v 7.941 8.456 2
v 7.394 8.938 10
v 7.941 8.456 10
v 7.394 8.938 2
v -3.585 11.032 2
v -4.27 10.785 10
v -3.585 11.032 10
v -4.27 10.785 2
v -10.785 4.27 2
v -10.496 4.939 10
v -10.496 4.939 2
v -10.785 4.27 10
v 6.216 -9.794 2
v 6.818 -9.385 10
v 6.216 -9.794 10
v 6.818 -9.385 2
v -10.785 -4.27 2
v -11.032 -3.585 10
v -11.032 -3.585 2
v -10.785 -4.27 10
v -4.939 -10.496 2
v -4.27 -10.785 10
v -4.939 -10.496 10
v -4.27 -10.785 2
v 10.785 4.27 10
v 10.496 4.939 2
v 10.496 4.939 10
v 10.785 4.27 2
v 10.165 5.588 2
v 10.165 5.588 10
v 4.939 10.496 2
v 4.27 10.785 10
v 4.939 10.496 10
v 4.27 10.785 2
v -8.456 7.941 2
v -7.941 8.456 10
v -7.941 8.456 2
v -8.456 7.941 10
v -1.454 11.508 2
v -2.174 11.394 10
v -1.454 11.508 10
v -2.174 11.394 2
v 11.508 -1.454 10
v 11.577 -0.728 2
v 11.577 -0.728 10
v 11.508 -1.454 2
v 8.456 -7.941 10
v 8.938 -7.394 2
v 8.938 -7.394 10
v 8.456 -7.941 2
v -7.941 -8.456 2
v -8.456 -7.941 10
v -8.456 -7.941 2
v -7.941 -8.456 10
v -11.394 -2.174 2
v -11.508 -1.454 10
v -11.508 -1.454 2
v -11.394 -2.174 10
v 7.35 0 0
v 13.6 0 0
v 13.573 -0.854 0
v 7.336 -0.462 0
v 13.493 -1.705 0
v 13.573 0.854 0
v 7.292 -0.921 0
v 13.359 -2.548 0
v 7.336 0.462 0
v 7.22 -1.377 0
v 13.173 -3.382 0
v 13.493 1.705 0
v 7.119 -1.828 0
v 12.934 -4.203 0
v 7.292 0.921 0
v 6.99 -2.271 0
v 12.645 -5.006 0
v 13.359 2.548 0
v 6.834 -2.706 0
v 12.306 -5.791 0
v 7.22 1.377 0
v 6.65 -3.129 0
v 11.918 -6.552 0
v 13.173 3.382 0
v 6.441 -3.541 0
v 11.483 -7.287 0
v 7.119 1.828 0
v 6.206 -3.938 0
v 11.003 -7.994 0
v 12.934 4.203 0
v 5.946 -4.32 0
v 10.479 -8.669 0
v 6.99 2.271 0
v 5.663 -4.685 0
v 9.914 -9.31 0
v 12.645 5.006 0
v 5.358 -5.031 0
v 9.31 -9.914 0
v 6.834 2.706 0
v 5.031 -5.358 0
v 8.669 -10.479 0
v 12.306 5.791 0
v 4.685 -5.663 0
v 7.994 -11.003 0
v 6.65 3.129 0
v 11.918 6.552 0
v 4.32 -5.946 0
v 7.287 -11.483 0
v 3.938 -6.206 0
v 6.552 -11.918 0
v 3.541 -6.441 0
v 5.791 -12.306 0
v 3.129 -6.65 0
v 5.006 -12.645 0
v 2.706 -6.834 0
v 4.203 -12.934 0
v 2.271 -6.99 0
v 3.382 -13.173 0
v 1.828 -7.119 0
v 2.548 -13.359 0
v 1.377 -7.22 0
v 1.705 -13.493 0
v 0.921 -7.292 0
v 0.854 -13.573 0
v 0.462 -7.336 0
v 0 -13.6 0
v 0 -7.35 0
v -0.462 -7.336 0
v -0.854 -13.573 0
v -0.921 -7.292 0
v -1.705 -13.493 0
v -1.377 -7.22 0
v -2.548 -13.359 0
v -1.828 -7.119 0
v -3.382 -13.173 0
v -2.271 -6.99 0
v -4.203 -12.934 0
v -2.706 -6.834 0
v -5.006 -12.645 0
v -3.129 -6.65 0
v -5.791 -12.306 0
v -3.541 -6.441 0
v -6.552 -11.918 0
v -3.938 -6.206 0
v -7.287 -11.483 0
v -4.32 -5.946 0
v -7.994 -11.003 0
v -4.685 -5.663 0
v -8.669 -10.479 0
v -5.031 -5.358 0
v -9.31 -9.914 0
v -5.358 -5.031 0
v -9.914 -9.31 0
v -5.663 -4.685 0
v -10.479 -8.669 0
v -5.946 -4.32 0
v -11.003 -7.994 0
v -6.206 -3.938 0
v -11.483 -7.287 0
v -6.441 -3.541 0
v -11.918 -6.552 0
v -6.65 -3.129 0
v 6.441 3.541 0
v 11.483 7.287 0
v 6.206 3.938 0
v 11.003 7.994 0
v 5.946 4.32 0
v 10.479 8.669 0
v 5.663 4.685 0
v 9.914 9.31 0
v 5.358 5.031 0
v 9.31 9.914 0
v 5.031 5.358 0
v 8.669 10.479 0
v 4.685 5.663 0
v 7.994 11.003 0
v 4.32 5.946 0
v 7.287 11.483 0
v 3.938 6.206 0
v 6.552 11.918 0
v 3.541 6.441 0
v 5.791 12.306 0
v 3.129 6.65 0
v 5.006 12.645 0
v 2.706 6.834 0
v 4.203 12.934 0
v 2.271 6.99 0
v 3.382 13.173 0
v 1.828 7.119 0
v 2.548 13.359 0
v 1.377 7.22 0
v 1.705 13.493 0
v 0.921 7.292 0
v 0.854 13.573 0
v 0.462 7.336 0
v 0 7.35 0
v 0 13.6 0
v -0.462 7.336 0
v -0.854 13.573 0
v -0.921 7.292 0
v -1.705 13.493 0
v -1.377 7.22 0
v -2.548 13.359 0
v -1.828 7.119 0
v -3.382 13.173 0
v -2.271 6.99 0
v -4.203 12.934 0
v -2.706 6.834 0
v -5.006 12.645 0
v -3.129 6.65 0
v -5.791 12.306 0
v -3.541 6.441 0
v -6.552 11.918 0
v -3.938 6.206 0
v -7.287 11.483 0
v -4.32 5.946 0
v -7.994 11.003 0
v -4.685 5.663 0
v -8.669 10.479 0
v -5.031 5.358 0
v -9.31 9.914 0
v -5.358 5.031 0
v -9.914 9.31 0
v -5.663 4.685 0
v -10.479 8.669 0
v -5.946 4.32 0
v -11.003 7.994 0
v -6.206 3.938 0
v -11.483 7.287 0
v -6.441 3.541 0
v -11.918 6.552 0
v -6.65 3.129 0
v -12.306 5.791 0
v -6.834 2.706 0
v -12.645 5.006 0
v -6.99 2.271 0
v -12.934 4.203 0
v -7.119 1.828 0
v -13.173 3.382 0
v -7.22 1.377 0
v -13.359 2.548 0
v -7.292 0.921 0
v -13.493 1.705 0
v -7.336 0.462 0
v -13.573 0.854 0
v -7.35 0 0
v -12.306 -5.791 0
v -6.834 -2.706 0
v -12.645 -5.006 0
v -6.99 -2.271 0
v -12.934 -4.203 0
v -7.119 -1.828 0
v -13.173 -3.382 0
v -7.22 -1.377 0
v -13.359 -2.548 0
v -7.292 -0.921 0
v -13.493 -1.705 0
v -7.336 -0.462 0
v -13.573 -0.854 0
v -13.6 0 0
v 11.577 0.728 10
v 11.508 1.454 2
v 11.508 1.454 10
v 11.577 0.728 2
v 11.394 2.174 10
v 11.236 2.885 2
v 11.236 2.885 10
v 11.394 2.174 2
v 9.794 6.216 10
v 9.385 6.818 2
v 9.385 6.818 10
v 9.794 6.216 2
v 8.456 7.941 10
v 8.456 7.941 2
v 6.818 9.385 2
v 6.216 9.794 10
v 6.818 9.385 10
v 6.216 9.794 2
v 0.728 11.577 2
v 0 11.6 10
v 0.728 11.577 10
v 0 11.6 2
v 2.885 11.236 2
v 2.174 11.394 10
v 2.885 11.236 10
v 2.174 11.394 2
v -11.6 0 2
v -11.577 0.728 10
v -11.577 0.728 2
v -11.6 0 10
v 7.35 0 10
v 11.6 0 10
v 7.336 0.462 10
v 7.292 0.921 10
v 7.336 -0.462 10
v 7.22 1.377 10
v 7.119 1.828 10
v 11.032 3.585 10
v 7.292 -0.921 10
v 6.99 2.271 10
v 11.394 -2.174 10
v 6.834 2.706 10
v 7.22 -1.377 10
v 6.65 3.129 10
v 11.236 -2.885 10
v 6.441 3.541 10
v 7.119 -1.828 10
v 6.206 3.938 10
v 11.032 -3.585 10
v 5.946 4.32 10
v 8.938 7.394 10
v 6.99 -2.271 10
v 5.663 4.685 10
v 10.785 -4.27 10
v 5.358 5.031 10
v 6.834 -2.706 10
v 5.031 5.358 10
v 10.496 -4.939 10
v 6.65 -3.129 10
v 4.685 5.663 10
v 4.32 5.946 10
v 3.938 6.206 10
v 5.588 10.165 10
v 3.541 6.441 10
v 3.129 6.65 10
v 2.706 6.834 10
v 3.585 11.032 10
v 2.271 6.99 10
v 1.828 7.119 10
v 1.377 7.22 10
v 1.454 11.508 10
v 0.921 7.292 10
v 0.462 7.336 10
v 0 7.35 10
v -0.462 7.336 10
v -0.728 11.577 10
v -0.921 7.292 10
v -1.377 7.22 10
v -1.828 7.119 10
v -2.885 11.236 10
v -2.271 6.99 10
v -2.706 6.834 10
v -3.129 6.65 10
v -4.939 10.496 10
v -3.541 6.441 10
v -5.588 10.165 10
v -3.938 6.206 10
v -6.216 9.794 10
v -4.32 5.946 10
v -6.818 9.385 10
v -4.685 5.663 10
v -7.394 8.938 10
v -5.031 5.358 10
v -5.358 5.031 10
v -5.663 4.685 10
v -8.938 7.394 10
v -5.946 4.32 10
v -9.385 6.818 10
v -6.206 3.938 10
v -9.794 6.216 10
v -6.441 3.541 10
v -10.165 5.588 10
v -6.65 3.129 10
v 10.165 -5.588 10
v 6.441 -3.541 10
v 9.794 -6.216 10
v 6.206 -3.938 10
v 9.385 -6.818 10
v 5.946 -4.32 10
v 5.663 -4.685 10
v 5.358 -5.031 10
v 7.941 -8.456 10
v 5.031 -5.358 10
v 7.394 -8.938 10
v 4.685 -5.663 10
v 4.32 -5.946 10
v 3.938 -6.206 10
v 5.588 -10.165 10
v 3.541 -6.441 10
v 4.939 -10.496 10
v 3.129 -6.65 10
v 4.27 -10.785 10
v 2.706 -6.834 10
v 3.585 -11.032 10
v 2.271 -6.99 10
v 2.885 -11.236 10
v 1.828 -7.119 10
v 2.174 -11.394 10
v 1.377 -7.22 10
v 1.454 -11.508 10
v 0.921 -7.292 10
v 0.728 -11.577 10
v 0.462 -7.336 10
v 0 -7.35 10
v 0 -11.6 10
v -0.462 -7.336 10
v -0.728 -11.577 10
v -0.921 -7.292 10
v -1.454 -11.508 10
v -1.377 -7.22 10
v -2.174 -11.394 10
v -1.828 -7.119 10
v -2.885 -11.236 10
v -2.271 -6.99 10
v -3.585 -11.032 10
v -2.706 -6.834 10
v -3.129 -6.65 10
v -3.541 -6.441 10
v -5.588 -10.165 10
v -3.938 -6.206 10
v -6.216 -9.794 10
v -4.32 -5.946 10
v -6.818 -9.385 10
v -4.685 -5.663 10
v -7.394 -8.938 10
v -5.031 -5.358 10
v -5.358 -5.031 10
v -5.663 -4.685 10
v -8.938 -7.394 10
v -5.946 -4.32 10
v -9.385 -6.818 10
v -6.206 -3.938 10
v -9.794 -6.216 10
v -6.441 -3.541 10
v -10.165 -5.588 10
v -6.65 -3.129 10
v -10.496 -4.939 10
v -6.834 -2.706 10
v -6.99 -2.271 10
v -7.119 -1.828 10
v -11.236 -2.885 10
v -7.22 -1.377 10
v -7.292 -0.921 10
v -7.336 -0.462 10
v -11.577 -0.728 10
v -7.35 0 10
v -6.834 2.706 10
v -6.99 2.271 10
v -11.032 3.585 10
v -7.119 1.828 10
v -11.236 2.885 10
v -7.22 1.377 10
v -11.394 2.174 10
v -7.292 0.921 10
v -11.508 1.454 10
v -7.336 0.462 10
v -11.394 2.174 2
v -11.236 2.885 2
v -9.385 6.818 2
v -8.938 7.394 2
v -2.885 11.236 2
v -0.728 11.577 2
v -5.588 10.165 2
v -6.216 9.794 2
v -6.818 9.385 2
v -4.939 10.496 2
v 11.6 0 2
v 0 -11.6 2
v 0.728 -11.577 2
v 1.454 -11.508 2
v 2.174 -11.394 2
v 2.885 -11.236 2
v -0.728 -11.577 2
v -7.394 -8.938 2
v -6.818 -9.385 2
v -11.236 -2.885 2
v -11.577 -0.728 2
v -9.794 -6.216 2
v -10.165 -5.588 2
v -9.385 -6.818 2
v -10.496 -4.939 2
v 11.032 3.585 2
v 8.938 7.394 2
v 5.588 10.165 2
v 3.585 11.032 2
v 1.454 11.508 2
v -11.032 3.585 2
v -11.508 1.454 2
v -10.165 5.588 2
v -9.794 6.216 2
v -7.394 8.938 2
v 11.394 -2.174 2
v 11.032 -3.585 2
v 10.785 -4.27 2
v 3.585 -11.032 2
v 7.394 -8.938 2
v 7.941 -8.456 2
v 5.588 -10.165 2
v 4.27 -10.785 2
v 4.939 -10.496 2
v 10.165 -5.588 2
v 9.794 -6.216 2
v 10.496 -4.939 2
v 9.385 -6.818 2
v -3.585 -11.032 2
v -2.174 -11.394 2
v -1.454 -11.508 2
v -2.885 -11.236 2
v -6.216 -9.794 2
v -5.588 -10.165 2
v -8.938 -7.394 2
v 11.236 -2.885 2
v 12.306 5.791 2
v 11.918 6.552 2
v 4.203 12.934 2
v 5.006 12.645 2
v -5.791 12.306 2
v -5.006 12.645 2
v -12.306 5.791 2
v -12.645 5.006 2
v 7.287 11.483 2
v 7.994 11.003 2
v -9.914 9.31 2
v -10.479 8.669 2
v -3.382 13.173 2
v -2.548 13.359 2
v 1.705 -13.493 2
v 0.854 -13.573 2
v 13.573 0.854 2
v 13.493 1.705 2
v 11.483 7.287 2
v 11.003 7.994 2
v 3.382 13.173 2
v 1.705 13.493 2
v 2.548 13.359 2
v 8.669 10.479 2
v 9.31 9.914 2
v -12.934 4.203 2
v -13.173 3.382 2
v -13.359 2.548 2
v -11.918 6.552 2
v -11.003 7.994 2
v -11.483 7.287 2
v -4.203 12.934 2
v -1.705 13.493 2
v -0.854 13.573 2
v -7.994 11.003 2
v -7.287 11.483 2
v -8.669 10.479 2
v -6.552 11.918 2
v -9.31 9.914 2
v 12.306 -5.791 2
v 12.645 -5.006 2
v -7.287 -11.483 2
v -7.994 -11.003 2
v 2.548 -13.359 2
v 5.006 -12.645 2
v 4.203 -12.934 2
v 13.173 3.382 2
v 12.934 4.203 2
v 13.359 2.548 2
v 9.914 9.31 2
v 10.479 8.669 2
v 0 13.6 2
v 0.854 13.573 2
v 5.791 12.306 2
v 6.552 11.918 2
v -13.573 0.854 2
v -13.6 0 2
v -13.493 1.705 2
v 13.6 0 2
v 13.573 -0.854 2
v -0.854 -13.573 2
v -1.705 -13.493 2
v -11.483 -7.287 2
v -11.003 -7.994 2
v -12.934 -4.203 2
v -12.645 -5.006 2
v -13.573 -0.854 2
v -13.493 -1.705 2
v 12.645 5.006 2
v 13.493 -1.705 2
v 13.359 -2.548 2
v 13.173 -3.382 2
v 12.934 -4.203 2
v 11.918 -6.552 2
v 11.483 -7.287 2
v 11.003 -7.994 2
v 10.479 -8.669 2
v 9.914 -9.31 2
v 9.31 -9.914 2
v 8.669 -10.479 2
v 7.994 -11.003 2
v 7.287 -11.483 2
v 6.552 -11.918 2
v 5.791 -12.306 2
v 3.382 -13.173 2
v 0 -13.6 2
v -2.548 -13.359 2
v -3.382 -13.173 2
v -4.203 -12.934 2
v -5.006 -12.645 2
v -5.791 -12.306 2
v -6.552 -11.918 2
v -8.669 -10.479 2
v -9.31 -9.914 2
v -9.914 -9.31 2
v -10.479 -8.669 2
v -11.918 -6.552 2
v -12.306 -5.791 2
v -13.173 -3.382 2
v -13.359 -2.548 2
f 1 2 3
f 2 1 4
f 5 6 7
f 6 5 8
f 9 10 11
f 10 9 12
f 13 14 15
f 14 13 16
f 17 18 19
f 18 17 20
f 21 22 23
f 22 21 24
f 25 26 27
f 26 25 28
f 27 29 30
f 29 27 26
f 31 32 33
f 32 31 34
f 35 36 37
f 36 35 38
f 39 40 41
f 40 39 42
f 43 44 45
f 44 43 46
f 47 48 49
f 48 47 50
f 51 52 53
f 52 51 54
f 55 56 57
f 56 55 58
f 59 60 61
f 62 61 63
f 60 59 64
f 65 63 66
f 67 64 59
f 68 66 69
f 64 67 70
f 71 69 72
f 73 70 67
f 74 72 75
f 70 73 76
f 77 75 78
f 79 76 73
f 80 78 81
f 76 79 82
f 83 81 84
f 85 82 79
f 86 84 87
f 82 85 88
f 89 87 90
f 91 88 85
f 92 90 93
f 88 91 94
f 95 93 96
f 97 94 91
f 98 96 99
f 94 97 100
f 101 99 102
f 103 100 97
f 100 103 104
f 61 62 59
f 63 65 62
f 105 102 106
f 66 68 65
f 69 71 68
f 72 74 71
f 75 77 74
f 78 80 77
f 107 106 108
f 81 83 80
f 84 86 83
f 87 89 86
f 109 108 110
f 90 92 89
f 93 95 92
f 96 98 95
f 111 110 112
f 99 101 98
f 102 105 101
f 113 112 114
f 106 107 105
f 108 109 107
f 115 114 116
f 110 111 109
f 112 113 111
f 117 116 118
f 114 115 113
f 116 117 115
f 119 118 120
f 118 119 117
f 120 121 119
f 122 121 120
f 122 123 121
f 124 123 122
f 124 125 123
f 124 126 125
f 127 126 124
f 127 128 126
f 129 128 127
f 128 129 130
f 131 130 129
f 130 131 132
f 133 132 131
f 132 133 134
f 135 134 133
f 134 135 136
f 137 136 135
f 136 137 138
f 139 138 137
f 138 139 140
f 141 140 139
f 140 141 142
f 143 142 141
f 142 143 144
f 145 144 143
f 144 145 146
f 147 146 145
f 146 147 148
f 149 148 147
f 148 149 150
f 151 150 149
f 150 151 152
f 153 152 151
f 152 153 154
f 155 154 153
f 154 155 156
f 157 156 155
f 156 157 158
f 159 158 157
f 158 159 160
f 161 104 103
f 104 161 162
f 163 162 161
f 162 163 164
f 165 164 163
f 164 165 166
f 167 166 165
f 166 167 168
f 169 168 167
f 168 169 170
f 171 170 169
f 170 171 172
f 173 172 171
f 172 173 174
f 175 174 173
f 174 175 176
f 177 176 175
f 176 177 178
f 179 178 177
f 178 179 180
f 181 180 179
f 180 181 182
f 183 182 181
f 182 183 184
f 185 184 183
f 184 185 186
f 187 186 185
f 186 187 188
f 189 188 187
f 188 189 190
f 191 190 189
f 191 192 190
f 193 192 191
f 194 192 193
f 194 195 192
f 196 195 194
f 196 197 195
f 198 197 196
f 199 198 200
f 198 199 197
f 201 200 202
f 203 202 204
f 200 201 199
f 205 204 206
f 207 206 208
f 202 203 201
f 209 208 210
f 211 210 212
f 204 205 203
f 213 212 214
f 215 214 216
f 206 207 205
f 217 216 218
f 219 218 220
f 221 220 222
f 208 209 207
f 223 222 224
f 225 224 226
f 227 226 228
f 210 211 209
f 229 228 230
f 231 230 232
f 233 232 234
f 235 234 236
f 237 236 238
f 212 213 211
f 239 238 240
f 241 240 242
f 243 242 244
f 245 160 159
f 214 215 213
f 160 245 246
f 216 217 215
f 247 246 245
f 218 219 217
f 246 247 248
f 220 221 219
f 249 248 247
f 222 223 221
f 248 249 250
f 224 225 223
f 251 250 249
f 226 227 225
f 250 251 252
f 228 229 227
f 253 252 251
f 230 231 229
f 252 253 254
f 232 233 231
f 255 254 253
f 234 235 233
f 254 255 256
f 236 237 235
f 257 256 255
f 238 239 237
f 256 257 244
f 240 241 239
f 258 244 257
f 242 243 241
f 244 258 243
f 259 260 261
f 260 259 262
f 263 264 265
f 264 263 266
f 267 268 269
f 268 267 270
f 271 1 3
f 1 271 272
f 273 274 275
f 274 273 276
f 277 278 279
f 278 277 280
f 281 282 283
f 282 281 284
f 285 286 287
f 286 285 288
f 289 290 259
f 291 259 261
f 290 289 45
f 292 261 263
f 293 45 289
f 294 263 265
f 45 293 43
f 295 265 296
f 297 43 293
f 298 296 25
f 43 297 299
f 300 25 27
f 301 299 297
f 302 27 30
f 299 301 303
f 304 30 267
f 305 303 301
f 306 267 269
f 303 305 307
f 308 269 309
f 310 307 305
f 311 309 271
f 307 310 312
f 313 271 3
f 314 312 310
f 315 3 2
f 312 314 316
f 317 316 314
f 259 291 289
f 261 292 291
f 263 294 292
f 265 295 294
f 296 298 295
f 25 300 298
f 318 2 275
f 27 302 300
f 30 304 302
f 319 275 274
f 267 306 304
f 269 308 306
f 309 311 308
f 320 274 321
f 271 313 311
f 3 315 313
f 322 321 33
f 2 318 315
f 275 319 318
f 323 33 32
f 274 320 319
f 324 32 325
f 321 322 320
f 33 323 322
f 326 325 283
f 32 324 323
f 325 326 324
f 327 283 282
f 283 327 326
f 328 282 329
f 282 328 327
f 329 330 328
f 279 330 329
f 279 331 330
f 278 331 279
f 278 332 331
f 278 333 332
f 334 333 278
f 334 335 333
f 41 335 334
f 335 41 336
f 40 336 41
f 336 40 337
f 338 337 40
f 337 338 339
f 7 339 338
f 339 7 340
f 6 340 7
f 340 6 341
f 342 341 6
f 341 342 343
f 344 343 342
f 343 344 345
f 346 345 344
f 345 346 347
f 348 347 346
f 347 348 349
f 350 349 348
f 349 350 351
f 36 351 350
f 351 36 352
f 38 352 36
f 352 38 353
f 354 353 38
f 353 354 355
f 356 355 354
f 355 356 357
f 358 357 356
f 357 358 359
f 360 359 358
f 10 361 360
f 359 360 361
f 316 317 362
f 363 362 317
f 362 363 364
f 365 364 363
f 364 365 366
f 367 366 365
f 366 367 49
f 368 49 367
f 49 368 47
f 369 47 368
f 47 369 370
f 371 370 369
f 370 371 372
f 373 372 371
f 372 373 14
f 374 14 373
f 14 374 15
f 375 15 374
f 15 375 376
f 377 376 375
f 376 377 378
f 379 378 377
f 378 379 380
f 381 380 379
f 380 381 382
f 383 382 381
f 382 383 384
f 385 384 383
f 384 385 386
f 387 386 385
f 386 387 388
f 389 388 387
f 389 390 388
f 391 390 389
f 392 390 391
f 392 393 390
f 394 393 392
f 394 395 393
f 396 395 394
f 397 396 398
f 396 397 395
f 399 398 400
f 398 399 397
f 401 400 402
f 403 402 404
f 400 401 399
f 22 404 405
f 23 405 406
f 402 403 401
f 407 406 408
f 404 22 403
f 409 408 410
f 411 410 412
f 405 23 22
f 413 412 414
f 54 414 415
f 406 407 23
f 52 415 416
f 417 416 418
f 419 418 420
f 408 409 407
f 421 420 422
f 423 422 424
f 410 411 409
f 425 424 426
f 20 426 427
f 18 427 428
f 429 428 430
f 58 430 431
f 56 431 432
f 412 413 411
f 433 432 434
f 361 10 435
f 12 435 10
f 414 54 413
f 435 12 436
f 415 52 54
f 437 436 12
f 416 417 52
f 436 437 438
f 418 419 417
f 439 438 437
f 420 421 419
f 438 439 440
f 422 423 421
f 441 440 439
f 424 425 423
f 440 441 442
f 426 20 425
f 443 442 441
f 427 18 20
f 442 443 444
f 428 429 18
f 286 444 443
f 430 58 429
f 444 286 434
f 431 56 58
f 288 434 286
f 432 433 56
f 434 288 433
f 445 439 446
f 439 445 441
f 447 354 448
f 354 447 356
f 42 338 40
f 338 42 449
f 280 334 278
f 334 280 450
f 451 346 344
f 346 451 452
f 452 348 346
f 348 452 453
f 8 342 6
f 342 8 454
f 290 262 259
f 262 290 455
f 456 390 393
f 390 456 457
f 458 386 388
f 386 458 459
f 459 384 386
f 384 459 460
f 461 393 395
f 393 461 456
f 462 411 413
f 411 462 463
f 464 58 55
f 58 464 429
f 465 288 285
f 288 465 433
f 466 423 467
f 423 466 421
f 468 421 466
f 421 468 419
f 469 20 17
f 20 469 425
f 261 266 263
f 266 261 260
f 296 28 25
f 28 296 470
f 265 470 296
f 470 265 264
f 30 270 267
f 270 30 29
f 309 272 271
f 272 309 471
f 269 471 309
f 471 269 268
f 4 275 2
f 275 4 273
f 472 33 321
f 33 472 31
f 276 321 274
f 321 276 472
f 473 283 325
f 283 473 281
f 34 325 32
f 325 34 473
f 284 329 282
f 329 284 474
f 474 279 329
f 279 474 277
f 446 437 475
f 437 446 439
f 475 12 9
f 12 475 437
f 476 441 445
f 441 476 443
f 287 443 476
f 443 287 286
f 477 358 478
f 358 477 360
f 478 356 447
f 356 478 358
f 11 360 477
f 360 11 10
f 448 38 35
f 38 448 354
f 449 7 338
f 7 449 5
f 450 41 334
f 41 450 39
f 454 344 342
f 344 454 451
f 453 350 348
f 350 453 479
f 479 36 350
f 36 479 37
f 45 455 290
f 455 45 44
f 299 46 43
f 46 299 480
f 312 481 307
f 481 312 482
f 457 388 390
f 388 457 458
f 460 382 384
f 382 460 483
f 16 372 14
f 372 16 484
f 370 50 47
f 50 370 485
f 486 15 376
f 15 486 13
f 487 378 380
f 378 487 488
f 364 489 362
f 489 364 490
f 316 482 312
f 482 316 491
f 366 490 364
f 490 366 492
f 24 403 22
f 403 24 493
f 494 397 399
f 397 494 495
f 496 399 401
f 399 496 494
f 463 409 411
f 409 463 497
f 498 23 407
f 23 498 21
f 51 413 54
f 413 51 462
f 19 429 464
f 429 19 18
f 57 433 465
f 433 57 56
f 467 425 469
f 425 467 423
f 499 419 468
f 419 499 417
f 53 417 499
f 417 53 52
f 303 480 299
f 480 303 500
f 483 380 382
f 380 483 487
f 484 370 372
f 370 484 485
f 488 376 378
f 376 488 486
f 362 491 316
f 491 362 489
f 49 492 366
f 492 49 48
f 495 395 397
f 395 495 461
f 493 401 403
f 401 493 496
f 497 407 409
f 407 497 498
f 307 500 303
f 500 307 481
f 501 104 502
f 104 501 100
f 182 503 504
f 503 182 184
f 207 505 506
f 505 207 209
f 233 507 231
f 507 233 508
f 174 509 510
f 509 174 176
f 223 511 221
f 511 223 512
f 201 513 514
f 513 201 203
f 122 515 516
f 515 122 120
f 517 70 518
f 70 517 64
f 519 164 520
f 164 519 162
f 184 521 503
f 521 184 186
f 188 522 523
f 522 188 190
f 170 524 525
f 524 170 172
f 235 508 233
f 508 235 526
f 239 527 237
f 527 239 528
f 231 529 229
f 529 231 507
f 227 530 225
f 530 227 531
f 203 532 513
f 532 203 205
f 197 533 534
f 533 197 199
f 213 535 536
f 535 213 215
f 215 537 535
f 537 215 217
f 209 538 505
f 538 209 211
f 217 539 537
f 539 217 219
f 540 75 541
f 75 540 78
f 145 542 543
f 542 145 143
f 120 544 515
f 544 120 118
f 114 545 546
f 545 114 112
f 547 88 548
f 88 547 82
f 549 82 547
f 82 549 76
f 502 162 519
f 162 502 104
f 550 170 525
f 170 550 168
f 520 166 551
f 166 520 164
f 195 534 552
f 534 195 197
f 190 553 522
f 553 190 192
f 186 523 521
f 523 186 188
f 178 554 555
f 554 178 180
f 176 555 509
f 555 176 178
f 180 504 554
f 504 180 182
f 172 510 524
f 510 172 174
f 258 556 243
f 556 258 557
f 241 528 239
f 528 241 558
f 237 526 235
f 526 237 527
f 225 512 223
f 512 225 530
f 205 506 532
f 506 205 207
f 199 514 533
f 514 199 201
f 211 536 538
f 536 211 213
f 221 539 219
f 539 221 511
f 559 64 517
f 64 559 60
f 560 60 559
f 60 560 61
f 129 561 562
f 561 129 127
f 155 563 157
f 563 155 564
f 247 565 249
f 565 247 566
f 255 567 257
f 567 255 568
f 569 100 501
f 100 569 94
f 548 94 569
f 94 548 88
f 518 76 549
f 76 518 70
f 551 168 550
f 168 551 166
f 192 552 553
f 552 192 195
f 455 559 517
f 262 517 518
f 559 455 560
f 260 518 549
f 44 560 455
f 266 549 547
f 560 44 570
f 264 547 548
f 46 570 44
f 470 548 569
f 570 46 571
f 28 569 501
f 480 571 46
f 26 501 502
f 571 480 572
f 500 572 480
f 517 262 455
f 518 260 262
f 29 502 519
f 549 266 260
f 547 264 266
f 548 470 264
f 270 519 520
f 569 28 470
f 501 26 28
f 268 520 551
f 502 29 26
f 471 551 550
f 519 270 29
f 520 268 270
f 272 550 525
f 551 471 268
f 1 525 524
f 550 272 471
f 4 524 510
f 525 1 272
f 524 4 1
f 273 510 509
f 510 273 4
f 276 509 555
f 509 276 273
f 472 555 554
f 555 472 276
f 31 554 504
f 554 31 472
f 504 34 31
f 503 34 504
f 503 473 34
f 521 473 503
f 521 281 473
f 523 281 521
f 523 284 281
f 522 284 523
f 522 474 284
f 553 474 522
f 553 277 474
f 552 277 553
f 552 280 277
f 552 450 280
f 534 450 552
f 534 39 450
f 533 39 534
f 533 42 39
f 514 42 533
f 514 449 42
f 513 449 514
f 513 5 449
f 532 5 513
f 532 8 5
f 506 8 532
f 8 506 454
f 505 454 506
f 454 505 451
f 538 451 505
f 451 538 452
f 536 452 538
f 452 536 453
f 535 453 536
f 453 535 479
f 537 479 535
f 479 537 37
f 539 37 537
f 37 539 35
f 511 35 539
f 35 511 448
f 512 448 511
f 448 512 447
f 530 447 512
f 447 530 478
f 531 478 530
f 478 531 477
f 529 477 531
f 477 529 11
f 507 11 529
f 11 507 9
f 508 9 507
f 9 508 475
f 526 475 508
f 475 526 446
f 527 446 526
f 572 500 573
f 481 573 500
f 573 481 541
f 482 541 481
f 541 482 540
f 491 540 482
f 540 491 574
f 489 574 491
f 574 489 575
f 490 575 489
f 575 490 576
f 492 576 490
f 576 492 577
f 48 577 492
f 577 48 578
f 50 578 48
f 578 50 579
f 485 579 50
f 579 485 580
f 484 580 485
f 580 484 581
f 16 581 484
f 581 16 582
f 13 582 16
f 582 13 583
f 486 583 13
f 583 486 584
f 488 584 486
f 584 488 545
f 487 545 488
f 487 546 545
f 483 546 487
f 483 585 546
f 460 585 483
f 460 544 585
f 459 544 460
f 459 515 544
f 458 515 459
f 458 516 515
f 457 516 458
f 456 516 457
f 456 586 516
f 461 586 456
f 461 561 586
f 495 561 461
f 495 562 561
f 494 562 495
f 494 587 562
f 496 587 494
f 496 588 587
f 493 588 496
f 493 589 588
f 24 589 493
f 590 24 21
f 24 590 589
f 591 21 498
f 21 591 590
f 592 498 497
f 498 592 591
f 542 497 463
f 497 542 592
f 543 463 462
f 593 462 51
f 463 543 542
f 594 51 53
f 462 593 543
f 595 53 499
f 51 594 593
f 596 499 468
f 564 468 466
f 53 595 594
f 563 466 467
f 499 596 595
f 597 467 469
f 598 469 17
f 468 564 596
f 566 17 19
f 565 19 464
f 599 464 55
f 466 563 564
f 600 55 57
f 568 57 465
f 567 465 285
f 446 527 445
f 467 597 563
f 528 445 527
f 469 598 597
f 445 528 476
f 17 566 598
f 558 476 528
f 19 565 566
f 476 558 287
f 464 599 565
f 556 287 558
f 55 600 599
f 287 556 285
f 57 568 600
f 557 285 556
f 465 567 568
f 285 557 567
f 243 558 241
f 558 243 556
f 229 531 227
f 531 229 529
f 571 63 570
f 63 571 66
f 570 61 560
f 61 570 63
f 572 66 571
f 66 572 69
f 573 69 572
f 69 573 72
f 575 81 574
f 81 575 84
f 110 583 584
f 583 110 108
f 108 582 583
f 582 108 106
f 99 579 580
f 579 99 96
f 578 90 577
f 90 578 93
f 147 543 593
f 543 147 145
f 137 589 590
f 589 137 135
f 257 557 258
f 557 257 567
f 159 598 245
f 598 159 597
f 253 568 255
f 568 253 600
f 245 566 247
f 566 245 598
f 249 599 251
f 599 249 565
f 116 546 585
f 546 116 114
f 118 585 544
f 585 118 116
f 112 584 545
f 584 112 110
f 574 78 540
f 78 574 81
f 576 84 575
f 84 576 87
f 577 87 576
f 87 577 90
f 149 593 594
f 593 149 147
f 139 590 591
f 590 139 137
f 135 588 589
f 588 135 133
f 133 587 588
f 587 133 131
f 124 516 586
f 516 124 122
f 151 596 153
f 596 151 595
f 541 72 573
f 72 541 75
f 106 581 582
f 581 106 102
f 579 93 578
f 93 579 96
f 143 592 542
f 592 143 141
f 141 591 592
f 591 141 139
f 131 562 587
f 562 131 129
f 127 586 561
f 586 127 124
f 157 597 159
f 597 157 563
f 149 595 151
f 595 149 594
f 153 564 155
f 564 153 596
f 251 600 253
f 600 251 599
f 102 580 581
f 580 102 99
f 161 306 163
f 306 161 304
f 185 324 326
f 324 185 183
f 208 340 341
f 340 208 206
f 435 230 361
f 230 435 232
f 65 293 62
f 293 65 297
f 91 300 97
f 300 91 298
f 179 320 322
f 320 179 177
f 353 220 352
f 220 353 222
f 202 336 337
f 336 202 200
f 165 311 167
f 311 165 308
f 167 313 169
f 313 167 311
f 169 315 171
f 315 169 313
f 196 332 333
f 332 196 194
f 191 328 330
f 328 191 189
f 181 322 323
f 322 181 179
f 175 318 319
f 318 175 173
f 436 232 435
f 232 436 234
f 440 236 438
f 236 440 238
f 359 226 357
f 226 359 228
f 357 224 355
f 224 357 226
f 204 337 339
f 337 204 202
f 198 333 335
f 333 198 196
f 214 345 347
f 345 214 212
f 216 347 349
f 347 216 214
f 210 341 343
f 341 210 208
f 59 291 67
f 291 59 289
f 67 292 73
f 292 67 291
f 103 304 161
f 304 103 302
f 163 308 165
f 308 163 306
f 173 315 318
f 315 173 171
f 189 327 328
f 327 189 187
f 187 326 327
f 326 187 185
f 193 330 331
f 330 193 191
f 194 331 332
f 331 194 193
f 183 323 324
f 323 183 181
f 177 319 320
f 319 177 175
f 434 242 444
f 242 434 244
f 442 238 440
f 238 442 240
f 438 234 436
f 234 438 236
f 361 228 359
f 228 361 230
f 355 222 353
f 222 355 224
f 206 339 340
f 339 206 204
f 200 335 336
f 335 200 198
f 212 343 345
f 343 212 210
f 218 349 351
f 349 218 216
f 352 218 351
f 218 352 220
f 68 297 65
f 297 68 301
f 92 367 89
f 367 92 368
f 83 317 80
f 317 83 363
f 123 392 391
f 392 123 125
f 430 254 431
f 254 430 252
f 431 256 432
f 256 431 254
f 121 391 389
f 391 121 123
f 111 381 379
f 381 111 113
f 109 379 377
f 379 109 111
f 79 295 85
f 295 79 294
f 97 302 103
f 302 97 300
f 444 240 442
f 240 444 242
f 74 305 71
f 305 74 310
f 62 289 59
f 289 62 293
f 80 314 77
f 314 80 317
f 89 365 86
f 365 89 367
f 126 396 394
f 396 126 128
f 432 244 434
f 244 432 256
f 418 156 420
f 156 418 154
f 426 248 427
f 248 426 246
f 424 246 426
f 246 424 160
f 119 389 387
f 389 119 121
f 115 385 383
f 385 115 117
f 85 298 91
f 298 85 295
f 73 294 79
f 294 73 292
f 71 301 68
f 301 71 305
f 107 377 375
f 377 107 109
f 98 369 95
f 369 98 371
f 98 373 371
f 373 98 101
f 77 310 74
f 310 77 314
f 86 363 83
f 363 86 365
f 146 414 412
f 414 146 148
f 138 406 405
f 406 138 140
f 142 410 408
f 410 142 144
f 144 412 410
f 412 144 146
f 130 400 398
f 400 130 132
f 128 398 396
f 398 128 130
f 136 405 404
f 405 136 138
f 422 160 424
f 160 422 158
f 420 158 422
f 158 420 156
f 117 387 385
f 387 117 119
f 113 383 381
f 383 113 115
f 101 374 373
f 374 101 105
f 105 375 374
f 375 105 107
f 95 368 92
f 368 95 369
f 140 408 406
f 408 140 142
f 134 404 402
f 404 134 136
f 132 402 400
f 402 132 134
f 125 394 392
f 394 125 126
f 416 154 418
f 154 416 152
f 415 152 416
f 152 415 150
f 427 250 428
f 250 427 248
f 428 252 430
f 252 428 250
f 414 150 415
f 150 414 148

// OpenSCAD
cameraTubeOuterDiameter = 14.2;
cameraTubeHeight = 10;
eyepieceTubeInnerDiameter = 23.2;
flangeHeight = 2;
flangeWidth = flangeHeight;
eyepieceCuffHeight = 20;
clearance = 0.25;

$fn = 100;
overcut = 0.01;
adapterDiameter = eyepieceTubeInnerDiameter; // clearance is microscope tube
adapterHeight = cameraTubeHeight;

difference() {
    union () {
        cylinder(h=adapterHeight, d=adapterDiameter);
        cylinder(h=flangeHeight, d=adapterDiameter + 2*flangeWidth);
    }
    translate([0,0,-overcut])
        cylinder(h=adapterHeight + 2*overcut,
            d=cameraTubeOuterDiameter + 2*clearance);
}
